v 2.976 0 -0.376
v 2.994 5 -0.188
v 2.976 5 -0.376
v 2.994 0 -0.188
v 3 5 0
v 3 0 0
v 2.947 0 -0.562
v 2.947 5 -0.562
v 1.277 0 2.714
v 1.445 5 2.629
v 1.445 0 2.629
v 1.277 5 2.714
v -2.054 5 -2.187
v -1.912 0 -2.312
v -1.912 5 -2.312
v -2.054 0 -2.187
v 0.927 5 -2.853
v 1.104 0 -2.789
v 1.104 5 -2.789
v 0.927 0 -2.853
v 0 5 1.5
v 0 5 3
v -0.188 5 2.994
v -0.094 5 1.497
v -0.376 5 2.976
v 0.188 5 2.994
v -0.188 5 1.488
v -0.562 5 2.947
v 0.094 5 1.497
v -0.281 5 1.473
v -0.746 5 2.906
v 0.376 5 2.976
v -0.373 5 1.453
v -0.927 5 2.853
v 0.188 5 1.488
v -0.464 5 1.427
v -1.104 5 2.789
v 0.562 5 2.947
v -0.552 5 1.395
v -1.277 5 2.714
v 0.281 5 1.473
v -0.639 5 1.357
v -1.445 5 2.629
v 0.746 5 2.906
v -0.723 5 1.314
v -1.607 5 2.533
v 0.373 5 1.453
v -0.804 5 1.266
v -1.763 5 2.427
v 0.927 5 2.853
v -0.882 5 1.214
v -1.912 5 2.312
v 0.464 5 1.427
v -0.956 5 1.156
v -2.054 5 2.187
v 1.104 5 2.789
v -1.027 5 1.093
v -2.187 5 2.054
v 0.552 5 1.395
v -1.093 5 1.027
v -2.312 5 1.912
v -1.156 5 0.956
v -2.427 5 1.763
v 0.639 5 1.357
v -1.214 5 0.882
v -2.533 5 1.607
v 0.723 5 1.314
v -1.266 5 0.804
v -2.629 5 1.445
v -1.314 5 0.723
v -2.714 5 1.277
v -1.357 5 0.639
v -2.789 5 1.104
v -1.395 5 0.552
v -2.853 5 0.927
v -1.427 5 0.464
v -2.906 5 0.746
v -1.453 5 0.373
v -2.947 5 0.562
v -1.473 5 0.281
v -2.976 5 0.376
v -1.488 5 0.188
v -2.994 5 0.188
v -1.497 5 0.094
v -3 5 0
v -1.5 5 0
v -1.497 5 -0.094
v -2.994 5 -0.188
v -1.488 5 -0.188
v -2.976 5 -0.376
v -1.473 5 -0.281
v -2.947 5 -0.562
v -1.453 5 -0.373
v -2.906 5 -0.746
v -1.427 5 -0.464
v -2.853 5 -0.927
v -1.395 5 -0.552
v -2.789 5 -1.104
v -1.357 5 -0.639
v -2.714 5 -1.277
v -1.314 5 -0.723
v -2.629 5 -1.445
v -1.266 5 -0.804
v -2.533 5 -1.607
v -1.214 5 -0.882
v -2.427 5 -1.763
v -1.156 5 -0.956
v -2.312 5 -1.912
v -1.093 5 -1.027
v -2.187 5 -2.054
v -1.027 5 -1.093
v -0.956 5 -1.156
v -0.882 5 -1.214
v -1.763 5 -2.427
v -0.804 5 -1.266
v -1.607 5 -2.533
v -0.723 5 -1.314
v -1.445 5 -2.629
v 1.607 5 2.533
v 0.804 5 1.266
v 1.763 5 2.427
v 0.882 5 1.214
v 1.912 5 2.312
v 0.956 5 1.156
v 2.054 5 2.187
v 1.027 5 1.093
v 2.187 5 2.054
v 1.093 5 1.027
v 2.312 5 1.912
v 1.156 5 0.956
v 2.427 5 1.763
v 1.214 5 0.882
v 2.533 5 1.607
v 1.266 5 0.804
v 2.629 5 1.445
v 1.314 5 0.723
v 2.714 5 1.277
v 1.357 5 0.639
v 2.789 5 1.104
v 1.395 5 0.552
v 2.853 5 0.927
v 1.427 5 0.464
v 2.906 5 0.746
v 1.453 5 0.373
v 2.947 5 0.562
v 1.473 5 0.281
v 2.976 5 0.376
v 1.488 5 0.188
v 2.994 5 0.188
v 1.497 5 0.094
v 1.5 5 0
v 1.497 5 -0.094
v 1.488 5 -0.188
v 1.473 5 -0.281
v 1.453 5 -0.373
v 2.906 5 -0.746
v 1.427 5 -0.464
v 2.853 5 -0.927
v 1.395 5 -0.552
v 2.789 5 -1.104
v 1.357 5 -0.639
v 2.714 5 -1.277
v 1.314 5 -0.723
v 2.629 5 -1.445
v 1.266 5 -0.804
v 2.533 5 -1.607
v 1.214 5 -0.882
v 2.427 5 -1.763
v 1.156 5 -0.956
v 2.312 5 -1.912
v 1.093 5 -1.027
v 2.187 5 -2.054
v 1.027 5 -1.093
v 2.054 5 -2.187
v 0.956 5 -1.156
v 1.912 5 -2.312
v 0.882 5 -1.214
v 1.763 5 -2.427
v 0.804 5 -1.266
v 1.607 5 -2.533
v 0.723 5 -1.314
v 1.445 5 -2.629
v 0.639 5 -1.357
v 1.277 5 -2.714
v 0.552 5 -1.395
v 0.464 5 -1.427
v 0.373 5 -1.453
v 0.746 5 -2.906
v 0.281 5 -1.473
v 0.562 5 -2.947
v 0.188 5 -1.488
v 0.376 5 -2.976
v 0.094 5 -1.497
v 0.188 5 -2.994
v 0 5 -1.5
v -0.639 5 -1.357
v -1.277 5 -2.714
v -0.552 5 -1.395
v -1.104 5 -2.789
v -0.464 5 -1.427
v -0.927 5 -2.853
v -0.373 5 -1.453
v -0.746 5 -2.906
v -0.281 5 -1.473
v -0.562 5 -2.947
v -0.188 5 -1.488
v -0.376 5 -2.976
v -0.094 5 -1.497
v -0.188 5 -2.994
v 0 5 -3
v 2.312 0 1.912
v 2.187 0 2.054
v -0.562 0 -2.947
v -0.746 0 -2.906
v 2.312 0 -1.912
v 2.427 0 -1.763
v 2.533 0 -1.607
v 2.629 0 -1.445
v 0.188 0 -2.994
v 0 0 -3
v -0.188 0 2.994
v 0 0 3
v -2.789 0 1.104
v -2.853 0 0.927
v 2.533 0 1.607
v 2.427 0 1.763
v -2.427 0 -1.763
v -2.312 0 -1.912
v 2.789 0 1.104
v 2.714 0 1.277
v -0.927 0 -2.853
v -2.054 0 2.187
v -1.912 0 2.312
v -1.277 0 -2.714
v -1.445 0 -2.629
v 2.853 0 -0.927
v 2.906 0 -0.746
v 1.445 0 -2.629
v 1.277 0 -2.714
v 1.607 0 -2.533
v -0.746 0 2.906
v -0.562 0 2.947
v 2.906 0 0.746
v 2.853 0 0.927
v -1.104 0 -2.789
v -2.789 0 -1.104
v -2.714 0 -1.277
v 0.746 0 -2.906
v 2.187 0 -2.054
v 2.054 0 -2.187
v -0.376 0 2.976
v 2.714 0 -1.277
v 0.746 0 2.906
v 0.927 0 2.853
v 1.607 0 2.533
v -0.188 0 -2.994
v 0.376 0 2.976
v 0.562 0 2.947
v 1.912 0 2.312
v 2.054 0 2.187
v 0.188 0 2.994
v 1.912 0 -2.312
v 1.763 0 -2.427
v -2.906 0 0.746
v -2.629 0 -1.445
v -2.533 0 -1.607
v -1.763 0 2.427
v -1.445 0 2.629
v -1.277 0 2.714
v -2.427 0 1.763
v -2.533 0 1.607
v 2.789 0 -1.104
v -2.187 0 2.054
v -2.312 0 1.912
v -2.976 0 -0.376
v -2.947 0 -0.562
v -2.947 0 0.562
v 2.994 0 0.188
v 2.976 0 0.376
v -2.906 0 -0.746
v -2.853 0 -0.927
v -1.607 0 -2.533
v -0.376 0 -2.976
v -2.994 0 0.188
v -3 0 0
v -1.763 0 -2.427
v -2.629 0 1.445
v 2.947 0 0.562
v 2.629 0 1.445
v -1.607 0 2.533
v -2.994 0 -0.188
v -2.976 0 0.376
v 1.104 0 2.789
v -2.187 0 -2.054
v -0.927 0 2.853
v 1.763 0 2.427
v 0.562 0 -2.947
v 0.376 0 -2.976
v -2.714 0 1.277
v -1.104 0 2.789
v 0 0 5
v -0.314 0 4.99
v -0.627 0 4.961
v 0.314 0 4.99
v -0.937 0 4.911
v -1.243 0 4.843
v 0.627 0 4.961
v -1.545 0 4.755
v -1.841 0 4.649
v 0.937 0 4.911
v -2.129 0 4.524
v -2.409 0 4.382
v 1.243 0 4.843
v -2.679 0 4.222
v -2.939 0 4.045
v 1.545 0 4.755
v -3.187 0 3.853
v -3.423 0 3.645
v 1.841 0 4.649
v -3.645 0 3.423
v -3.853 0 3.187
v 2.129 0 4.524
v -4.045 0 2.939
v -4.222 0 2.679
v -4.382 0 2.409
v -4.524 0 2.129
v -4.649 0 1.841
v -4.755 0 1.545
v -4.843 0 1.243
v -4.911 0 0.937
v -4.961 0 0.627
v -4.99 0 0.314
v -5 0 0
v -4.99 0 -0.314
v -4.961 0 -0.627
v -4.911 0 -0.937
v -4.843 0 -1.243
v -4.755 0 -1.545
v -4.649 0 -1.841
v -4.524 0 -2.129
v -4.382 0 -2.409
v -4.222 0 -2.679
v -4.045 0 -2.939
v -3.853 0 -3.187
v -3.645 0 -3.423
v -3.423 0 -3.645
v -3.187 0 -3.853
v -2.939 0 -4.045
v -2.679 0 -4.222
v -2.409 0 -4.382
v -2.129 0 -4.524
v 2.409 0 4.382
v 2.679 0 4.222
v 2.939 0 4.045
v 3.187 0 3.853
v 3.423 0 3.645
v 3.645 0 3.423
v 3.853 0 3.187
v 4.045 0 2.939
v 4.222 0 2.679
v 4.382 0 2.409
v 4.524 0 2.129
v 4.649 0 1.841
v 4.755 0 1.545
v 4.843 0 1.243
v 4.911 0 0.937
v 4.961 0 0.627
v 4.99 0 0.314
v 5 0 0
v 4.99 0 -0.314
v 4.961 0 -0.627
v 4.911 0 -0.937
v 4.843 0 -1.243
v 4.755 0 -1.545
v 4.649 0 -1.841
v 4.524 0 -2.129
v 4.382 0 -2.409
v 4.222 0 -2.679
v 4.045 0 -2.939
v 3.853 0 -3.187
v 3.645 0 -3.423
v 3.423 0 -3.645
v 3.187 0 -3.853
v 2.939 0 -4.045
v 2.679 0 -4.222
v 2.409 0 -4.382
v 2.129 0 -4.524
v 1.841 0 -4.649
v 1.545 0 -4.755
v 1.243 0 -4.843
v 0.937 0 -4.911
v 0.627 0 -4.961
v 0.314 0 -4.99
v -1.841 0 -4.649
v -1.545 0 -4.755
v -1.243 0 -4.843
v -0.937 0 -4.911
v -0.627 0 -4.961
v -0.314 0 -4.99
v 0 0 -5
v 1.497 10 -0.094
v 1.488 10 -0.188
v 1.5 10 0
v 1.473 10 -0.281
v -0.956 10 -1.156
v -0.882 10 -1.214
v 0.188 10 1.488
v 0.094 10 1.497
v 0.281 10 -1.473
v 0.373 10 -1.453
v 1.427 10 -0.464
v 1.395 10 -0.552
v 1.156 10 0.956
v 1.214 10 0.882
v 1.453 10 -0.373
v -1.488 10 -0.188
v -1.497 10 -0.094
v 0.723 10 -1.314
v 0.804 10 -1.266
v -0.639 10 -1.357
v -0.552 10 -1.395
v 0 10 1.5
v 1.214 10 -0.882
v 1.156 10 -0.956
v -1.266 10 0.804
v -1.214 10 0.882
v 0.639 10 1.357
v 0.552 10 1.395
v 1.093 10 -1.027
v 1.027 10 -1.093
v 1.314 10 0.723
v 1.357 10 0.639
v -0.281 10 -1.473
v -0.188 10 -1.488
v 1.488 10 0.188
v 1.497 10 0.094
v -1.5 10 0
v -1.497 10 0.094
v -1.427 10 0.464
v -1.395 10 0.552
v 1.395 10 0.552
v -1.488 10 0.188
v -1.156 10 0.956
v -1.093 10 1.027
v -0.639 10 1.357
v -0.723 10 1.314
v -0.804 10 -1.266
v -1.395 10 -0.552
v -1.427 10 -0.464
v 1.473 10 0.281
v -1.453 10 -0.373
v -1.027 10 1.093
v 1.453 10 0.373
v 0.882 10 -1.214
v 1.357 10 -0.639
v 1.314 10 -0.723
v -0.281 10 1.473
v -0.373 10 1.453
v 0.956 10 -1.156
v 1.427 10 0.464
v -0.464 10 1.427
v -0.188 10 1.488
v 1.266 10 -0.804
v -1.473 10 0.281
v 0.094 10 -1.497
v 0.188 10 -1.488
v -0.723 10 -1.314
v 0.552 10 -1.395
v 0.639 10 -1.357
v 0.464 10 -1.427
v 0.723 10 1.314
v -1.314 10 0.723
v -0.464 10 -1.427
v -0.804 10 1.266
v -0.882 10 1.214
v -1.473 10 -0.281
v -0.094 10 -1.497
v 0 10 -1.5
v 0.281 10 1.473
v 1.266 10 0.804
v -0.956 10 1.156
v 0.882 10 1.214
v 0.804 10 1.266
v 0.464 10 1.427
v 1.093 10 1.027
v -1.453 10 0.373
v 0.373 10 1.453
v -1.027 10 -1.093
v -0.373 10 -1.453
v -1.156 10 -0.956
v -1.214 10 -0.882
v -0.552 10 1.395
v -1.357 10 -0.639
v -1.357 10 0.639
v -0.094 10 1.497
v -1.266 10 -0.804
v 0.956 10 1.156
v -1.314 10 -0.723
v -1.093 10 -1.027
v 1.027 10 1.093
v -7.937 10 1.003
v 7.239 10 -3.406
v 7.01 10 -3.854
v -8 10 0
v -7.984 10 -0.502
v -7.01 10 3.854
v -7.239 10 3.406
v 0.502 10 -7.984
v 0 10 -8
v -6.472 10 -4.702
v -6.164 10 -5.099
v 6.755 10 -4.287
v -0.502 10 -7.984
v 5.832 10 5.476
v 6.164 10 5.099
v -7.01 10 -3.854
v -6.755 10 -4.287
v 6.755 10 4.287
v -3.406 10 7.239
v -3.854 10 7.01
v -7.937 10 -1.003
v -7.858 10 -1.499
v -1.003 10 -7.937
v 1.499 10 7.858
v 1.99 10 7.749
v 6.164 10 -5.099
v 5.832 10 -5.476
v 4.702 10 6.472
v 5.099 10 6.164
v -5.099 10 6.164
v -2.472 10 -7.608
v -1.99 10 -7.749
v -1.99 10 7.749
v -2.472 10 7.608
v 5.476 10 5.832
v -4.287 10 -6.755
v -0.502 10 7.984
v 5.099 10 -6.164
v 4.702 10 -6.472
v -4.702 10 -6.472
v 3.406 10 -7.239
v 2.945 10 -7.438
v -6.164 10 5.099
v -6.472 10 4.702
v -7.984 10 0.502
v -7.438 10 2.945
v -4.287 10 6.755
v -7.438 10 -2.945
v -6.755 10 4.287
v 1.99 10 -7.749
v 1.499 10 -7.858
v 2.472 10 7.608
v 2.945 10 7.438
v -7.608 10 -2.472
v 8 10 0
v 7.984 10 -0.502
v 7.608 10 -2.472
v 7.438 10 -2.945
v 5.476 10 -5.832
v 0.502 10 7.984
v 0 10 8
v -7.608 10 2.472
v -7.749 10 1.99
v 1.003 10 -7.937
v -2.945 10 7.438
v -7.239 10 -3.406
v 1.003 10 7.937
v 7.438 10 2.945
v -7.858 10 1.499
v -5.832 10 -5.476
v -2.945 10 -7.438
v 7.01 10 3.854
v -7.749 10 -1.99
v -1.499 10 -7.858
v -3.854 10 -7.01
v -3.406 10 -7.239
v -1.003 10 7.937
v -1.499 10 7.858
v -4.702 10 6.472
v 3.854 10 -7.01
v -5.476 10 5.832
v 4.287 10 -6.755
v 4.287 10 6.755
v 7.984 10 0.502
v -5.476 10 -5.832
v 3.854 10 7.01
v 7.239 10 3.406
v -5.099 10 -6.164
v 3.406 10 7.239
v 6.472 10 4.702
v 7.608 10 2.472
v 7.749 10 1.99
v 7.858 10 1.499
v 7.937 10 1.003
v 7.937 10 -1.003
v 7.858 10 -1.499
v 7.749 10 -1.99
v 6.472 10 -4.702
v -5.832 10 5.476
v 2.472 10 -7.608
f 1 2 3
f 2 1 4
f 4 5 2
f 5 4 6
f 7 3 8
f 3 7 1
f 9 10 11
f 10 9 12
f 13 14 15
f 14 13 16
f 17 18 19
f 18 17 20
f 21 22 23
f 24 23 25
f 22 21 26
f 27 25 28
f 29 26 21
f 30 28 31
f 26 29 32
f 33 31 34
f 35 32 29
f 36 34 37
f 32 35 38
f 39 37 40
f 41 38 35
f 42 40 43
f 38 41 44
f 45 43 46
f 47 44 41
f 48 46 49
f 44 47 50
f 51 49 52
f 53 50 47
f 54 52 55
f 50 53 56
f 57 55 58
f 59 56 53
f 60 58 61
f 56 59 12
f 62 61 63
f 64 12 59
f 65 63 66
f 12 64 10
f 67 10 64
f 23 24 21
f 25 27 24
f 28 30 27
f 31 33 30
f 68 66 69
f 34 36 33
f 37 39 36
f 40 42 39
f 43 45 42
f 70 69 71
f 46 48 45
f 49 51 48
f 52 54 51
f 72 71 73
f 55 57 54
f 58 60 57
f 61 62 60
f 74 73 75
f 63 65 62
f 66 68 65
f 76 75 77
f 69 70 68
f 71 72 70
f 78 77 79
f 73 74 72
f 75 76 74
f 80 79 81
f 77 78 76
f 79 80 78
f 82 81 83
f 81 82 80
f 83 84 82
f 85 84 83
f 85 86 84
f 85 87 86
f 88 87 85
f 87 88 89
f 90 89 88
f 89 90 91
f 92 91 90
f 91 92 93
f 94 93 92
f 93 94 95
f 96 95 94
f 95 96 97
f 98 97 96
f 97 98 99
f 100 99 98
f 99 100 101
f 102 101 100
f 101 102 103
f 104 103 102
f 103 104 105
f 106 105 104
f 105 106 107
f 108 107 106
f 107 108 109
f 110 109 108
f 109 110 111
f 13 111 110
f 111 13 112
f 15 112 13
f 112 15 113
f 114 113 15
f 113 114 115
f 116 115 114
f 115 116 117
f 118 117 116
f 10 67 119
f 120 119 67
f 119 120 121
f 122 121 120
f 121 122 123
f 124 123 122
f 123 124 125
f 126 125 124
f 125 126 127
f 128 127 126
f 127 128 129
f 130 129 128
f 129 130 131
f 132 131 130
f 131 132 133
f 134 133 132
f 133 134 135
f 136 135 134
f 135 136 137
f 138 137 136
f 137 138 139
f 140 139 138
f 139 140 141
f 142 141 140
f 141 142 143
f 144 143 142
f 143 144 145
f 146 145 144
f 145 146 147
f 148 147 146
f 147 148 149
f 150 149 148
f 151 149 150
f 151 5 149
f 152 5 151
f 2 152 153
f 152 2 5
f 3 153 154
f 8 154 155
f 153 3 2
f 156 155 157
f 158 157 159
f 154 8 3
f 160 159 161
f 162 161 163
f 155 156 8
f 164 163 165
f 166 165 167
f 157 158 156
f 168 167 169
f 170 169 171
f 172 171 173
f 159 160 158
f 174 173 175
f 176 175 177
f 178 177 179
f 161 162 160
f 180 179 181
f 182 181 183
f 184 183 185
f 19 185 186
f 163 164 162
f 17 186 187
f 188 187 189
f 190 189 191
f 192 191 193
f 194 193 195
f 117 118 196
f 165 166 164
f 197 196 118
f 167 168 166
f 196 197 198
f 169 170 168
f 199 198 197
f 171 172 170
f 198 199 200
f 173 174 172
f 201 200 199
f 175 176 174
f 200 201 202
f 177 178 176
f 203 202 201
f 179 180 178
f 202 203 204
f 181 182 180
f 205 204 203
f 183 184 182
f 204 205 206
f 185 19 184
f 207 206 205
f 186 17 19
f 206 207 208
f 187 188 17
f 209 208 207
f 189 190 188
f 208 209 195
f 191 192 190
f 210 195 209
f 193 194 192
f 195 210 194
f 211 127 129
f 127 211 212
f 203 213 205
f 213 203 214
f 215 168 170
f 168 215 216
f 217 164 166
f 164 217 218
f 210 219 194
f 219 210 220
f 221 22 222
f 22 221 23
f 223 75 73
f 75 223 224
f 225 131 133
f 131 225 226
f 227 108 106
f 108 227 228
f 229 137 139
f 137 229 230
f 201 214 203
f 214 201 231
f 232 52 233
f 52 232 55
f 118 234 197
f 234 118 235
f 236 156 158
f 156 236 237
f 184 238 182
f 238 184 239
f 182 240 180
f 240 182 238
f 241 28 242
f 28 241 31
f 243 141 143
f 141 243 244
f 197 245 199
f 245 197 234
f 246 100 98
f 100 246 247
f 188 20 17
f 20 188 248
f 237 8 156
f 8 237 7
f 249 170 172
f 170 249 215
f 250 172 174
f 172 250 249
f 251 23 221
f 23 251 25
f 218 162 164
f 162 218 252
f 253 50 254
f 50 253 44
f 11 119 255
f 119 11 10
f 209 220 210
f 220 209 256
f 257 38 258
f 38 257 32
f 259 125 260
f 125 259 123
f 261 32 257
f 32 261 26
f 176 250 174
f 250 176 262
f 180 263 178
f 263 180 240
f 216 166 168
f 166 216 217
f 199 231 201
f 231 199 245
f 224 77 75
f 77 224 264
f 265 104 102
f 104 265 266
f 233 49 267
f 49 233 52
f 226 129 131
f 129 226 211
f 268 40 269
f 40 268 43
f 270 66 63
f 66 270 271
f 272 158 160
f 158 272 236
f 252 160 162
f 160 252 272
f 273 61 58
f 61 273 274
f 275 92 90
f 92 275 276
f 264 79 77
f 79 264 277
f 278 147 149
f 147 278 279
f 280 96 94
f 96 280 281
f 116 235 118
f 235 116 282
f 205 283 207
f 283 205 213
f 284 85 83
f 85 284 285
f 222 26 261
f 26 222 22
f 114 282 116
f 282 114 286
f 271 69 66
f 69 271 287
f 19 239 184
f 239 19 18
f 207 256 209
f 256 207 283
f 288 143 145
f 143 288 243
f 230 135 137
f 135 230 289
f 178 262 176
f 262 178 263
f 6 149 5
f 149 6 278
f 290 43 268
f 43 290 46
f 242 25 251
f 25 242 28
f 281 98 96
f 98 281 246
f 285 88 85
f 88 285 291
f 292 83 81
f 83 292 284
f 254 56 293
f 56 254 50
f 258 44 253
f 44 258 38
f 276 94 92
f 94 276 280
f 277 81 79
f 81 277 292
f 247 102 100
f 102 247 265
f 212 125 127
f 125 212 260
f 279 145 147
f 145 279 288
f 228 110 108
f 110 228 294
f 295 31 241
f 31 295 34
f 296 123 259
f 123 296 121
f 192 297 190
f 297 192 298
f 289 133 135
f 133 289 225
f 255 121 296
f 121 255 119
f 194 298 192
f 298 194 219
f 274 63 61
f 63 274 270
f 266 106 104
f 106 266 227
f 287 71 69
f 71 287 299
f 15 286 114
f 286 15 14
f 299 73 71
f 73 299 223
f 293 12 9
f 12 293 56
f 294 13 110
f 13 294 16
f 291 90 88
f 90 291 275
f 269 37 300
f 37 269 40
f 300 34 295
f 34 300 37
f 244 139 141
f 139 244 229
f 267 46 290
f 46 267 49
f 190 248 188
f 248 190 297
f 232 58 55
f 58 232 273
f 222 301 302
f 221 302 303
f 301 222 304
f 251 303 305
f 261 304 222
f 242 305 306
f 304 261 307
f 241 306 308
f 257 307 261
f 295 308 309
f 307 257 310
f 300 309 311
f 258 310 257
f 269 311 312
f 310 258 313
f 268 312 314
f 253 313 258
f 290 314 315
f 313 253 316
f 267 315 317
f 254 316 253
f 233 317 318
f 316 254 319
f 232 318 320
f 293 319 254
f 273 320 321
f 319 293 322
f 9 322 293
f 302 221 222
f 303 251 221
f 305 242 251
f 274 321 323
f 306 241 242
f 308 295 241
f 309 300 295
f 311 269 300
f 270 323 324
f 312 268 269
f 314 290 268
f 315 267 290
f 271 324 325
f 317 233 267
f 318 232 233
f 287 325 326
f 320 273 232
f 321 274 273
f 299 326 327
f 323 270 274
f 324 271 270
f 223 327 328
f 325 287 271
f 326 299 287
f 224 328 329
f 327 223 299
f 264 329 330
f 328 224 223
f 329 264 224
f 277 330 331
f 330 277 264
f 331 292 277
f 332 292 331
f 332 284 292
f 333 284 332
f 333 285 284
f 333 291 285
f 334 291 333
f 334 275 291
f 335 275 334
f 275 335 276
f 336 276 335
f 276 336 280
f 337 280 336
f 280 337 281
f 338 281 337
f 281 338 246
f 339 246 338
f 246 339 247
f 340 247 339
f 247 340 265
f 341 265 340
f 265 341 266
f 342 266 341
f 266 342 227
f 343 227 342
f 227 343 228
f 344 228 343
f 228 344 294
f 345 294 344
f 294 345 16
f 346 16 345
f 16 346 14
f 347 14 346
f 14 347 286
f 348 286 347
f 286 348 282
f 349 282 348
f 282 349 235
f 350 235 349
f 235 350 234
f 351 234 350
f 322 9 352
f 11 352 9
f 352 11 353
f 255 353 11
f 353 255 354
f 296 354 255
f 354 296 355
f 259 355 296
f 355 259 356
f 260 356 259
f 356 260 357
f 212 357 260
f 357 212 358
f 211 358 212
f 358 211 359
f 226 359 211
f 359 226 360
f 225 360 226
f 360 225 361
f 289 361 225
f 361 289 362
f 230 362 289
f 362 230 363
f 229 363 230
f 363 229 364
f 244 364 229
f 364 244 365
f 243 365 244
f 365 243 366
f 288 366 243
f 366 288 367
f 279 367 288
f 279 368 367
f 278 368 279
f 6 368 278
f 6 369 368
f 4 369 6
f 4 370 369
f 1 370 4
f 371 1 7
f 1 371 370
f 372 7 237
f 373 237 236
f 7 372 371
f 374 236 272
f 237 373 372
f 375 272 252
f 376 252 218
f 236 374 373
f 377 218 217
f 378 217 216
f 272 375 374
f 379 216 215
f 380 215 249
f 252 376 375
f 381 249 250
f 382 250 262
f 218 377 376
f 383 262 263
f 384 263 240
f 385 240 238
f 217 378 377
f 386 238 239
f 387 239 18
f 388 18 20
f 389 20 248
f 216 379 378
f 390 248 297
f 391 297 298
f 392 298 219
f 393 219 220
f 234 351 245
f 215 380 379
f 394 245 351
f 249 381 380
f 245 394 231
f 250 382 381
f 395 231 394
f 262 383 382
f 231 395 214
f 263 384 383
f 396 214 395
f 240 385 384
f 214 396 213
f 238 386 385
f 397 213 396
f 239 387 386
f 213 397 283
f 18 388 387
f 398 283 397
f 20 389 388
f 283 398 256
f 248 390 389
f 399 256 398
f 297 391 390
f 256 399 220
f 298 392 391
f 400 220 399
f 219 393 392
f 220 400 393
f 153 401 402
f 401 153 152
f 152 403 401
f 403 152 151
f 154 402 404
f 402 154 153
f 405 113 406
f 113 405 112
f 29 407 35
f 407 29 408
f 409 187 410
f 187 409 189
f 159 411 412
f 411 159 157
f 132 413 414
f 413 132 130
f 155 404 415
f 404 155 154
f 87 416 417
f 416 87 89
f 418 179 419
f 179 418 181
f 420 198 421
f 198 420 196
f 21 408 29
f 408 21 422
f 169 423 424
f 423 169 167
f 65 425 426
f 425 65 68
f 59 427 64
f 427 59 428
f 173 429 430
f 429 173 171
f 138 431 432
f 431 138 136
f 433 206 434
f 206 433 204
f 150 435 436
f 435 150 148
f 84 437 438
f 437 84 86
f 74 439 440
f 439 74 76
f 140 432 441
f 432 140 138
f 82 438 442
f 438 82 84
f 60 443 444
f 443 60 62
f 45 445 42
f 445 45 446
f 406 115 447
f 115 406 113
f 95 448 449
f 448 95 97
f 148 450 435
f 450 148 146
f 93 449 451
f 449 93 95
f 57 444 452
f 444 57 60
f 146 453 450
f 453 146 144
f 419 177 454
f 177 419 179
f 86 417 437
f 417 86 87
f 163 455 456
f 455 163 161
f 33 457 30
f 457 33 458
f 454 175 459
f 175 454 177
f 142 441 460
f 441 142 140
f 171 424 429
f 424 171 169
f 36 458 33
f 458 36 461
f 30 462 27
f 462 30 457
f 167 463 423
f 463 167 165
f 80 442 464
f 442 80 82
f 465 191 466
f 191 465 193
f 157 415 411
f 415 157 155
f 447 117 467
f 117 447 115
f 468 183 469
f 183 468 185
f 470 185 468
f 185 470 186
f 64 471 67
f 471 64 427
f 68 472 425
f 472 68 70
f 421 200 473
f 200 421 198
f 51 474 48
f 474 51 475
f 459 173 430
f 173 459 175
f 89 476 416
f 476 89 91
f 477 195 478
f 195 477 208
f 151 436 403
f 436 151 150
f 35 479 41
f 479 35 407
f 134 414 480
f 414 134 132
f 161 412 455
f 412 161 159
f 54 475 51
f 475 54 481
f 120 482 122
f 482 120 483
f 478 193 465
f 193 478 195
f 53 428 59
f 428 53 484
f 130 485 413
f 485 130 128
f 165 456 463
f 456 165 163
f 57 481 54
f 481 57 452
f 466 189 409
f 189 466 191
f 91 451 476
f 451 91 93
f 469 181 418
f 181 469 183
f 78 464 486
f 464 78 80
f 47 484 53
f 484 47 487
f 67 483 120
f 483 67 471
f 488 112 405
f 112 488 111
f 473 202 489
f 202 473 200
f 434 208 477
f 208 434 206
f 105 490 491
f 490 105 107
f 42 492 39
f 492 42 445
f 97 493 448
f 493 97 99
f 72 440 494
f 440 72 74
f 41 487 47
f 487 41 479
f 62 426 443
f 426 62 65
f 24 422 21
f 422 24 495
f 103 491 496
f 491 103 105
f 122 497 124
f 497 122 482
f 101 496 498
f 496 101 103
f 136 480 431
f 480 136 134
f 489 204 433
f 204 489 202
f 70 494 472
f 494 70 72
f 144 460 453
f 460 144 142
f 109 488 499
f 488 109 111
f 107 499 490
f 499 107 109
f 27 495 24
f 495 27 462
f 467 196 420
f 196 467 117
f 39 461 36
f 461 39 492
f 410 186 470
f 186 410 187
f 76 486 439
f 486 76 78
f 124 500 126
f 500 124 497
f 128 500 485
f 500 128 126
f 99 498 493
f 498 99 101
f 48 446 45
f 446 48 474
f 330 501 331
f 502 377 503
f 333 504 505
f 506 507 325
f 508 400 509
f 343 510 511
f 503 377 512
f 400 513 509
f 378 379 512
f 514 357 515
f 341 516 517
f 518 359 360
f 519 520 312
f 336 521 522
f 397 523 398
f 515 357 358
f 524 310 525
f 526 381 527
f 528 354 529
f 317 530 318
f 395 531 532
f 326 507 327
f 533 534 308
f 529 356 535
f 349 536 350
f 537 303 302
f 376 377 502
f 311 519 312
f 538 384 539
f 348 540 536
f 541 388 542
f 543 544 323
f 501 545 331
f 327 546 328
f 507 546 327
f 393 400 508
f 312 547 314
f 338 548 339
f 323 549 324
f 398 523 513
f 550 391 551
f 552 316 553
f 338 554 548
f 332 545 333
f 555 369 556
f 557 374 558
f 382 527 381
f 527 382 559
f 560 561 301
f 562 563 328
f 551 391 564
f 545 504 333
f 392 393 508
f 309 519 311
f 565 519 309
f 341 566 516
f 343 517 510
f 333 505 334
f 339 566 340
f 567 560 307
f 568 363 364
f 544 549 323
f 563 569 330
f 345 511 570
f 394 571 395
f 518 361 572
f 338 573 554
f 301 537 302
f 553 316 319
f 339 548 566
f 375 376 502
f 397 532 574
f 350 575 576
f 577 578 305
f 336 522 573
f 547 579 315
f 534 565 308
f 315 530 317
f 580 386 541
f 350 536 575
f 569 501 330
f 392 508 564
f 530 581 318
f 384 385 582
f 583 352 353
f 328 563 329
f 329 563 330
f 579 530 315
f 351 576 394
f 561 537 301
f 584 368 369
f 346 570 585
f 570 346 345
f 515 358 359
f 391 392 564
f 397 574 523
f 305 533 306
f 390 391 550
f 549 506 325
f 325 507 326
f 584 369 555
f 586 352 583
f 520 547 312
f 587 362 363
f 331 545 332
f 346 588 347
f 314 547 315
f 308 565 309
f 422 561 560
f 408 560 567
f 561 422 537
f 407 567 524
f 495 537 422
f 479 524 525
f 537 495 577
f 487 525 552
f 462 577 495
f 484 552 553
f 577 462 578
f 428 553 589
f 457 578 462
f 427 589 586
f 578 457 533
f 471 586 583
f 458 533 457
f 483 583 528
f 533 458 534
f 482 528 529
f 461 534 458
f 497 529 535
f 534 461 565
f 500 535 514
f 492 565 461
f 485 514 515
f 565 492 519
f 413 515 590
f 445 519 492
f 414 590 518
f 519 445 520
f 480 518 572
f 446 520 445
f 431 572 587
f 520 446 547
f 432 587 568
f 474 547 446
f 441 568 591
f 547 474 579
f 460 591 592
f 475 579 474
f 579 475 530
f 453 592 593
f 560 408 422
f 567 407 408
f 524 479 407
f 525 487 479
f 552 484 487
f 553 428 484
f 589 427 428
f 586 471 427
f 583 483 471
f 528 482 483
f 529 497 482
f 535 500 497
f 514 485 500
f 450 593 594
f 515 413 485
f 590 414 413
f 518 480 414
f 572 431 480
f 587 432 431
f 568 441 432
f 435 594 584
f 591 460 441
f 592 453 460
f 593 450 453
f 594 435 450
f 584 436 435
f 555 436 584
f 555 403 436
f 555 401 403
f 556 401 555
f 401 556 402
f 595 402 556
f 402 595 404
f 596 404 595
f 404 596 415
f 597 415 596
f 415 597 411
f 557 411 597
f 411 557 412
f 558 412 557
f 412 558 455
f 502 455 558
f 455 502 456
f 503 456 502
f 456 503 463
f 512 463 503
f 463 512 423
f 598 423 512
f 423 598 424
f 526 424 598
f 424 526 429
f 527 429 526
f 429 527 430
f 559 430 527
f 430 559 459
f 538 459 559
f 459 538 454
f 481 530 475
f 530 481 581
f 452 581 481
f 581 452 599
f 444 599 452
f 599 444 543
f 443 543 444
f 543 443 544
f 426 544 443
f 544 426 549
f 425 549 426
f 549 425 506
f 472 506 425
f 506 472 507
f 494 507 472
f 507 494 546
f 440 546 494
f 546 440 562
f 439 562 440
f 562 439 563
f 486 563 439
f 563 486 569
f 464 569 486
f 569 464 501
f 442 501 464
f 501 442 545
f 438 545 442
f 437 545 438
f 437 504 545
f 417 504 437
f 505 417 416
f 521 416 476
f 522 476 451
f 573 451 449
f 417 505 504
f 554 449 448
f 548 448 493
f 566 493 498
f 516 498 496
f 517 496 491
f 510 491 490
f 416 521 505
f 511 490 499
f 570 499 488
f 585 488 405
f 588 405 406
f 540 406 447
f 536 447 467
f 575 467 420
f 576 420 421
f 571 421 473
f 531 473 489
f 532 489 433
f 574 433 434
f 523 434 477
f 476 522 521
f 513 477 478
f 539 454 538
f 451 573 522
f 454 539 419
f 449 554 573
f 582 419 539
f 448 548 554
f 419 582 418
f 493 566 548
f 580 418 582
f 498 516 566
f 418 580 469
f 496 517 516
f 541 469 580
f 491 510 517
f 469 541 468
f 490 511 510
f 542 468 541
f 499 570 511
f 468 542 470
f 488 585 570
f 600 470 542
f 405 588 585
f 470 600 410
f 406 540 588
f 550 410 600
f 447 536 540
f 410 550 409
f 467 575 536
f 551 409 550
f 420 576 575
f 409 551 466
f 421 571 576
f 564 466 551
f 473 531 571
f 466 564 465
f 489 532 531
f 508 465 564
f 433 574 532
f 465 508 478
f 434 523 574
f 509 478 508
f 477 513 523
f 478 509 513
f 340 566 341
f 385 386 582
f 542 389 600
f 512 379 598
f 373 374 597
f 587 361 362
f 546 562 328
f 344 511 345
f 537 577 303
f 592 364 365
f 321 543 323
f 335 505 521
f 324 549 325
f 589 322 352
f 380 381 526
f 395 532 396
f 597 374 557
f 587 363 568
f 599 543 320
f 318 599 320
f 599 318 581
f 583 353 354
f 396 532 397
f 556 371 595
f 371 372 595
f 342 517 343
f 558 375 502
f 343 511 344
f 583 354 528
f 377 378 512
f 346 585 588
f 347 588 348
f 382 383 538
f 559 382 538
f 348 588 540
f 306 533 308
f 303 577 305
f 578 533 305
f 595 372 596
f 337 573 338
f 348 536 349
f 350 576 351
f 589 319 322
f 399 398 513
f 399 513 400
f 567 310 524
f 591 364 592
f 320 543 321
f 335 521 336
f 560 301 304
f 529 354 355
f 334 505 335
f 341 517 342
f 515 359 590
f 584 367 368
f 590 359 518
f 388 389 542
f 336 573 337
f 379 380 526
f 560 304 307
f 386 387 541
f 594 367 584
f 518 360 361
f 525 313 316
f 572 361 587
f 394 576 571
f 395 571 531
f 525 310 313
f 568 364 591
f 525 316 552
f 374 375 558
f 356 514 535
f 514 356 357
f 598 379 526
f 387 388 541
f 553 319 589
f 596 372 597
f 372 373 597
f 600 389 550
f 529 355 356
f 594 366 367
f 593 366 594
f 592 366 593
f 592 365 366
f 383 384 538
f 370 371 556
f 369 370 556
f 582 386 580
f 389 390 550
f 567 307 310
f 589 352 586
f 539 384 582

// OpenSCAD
// file: ../common/nut.scad
// 1.5^2 + y^2 = 3^2
// sqrt(3^2 - 1.5^2)
//       30
//    /   |
// 60  - 90
// cos(30) = x / 3
// x = 3 cos(30)
module hex(side_length=3) {
  points = [[0,0], [side_length, 0], [side_length / 2, side_length * cos(30)]];
  for (i=[0:1:5]) {
    rotate([0,0,i * 60]) polygon(points);
  }
}

module hex_nut(side_length=3, height=2) {
    linear_extrude(height=height) hex(side_length);
}

module square_nut(side_length=5, height=2, _offset=0) {
    cube([5 + _offset,5,2]);
}
// file: ../common/screw.scad
$fn=100;

module screw(screw_head_radius=3, screw_head_height=3, threaded_radius=1.5, threaded_height=10) {
  // screw head
  cylinder(h=screw_head_height, r=screw_head_radius);

  translate([0, 0, screw_head_height]) {
    cylinder(h=threaded_height, r=threaded_radius);
  }
}

// m3x10

screw(screw_head_radius=3, screw_head_height=3, threaded_radius=1.5, threaded_height=10);
// file: ../common/screw_with_nut.scad
use <screw.scad>
use <nut.scad>

module screw_with_nut(
  hex_nut_height=2.5,
  screw_head_height=3,
  threaded_height=10,
  threaded_radius=1.5,
  screw_head_radius=3,
  hex_nut_side_length=3.6,
  square_nut_height=2,
  square_nut_side_length=5,
  nut_type="hex"
) {
  screw(screw_head_radius=screw_head_radius, screw_head_height=screw_head_height, threaded_radius=threaded_radius, threaded_height=threaded_height);

  if (nut_type == "hex") {
    translate([0,0, screw_head_height + threaded_height - hex_nut_height]) {
      hex_nut(side_length=hex_nut_side_length, height=hex_nut_height);
    }
  }

  else if (nut_type == "square"){
    rotate([0,0,-90])
    translate([
        -square_nut_side_length / 2,
        -square_nut_side_length / 2,
        screw_head_height + threaded_height - square_nut_height
    ]) {
      square_nut(
          side_length=square_nut_side_length,
          height=square_nut_height,
          _offset=5);
    }
  }

}

screw_with_nut(nut_type="square");
// main file
use <../common/screw_with_nut.scad>
$fn = 100;

module cone(width=5, height=10, cone_top_radius=8) {
  rotate_extrude(convexity=10, angle=360)
    polygon([[0,0], [width,0], [cone_top_radius, height], [0,height]]);
}

module foot(screw=false, height=10, screw_head_height=5) {
  if (screw) {
    rotate([-90,0,0]) screw_with_nut(nut_type="hex", threaded_height=10, screw_head_height=screw_head_height);
  } else {
    rotate([-90,0,0]) difference() {
      cone(height=height);
      screw_with_nut(nut_type="hex", threaded_height=10, screw_head_height=screw_head_height);
    }
  }
}


foot();
// screw_with_nut(nut_type="none", threaded_height=10);
